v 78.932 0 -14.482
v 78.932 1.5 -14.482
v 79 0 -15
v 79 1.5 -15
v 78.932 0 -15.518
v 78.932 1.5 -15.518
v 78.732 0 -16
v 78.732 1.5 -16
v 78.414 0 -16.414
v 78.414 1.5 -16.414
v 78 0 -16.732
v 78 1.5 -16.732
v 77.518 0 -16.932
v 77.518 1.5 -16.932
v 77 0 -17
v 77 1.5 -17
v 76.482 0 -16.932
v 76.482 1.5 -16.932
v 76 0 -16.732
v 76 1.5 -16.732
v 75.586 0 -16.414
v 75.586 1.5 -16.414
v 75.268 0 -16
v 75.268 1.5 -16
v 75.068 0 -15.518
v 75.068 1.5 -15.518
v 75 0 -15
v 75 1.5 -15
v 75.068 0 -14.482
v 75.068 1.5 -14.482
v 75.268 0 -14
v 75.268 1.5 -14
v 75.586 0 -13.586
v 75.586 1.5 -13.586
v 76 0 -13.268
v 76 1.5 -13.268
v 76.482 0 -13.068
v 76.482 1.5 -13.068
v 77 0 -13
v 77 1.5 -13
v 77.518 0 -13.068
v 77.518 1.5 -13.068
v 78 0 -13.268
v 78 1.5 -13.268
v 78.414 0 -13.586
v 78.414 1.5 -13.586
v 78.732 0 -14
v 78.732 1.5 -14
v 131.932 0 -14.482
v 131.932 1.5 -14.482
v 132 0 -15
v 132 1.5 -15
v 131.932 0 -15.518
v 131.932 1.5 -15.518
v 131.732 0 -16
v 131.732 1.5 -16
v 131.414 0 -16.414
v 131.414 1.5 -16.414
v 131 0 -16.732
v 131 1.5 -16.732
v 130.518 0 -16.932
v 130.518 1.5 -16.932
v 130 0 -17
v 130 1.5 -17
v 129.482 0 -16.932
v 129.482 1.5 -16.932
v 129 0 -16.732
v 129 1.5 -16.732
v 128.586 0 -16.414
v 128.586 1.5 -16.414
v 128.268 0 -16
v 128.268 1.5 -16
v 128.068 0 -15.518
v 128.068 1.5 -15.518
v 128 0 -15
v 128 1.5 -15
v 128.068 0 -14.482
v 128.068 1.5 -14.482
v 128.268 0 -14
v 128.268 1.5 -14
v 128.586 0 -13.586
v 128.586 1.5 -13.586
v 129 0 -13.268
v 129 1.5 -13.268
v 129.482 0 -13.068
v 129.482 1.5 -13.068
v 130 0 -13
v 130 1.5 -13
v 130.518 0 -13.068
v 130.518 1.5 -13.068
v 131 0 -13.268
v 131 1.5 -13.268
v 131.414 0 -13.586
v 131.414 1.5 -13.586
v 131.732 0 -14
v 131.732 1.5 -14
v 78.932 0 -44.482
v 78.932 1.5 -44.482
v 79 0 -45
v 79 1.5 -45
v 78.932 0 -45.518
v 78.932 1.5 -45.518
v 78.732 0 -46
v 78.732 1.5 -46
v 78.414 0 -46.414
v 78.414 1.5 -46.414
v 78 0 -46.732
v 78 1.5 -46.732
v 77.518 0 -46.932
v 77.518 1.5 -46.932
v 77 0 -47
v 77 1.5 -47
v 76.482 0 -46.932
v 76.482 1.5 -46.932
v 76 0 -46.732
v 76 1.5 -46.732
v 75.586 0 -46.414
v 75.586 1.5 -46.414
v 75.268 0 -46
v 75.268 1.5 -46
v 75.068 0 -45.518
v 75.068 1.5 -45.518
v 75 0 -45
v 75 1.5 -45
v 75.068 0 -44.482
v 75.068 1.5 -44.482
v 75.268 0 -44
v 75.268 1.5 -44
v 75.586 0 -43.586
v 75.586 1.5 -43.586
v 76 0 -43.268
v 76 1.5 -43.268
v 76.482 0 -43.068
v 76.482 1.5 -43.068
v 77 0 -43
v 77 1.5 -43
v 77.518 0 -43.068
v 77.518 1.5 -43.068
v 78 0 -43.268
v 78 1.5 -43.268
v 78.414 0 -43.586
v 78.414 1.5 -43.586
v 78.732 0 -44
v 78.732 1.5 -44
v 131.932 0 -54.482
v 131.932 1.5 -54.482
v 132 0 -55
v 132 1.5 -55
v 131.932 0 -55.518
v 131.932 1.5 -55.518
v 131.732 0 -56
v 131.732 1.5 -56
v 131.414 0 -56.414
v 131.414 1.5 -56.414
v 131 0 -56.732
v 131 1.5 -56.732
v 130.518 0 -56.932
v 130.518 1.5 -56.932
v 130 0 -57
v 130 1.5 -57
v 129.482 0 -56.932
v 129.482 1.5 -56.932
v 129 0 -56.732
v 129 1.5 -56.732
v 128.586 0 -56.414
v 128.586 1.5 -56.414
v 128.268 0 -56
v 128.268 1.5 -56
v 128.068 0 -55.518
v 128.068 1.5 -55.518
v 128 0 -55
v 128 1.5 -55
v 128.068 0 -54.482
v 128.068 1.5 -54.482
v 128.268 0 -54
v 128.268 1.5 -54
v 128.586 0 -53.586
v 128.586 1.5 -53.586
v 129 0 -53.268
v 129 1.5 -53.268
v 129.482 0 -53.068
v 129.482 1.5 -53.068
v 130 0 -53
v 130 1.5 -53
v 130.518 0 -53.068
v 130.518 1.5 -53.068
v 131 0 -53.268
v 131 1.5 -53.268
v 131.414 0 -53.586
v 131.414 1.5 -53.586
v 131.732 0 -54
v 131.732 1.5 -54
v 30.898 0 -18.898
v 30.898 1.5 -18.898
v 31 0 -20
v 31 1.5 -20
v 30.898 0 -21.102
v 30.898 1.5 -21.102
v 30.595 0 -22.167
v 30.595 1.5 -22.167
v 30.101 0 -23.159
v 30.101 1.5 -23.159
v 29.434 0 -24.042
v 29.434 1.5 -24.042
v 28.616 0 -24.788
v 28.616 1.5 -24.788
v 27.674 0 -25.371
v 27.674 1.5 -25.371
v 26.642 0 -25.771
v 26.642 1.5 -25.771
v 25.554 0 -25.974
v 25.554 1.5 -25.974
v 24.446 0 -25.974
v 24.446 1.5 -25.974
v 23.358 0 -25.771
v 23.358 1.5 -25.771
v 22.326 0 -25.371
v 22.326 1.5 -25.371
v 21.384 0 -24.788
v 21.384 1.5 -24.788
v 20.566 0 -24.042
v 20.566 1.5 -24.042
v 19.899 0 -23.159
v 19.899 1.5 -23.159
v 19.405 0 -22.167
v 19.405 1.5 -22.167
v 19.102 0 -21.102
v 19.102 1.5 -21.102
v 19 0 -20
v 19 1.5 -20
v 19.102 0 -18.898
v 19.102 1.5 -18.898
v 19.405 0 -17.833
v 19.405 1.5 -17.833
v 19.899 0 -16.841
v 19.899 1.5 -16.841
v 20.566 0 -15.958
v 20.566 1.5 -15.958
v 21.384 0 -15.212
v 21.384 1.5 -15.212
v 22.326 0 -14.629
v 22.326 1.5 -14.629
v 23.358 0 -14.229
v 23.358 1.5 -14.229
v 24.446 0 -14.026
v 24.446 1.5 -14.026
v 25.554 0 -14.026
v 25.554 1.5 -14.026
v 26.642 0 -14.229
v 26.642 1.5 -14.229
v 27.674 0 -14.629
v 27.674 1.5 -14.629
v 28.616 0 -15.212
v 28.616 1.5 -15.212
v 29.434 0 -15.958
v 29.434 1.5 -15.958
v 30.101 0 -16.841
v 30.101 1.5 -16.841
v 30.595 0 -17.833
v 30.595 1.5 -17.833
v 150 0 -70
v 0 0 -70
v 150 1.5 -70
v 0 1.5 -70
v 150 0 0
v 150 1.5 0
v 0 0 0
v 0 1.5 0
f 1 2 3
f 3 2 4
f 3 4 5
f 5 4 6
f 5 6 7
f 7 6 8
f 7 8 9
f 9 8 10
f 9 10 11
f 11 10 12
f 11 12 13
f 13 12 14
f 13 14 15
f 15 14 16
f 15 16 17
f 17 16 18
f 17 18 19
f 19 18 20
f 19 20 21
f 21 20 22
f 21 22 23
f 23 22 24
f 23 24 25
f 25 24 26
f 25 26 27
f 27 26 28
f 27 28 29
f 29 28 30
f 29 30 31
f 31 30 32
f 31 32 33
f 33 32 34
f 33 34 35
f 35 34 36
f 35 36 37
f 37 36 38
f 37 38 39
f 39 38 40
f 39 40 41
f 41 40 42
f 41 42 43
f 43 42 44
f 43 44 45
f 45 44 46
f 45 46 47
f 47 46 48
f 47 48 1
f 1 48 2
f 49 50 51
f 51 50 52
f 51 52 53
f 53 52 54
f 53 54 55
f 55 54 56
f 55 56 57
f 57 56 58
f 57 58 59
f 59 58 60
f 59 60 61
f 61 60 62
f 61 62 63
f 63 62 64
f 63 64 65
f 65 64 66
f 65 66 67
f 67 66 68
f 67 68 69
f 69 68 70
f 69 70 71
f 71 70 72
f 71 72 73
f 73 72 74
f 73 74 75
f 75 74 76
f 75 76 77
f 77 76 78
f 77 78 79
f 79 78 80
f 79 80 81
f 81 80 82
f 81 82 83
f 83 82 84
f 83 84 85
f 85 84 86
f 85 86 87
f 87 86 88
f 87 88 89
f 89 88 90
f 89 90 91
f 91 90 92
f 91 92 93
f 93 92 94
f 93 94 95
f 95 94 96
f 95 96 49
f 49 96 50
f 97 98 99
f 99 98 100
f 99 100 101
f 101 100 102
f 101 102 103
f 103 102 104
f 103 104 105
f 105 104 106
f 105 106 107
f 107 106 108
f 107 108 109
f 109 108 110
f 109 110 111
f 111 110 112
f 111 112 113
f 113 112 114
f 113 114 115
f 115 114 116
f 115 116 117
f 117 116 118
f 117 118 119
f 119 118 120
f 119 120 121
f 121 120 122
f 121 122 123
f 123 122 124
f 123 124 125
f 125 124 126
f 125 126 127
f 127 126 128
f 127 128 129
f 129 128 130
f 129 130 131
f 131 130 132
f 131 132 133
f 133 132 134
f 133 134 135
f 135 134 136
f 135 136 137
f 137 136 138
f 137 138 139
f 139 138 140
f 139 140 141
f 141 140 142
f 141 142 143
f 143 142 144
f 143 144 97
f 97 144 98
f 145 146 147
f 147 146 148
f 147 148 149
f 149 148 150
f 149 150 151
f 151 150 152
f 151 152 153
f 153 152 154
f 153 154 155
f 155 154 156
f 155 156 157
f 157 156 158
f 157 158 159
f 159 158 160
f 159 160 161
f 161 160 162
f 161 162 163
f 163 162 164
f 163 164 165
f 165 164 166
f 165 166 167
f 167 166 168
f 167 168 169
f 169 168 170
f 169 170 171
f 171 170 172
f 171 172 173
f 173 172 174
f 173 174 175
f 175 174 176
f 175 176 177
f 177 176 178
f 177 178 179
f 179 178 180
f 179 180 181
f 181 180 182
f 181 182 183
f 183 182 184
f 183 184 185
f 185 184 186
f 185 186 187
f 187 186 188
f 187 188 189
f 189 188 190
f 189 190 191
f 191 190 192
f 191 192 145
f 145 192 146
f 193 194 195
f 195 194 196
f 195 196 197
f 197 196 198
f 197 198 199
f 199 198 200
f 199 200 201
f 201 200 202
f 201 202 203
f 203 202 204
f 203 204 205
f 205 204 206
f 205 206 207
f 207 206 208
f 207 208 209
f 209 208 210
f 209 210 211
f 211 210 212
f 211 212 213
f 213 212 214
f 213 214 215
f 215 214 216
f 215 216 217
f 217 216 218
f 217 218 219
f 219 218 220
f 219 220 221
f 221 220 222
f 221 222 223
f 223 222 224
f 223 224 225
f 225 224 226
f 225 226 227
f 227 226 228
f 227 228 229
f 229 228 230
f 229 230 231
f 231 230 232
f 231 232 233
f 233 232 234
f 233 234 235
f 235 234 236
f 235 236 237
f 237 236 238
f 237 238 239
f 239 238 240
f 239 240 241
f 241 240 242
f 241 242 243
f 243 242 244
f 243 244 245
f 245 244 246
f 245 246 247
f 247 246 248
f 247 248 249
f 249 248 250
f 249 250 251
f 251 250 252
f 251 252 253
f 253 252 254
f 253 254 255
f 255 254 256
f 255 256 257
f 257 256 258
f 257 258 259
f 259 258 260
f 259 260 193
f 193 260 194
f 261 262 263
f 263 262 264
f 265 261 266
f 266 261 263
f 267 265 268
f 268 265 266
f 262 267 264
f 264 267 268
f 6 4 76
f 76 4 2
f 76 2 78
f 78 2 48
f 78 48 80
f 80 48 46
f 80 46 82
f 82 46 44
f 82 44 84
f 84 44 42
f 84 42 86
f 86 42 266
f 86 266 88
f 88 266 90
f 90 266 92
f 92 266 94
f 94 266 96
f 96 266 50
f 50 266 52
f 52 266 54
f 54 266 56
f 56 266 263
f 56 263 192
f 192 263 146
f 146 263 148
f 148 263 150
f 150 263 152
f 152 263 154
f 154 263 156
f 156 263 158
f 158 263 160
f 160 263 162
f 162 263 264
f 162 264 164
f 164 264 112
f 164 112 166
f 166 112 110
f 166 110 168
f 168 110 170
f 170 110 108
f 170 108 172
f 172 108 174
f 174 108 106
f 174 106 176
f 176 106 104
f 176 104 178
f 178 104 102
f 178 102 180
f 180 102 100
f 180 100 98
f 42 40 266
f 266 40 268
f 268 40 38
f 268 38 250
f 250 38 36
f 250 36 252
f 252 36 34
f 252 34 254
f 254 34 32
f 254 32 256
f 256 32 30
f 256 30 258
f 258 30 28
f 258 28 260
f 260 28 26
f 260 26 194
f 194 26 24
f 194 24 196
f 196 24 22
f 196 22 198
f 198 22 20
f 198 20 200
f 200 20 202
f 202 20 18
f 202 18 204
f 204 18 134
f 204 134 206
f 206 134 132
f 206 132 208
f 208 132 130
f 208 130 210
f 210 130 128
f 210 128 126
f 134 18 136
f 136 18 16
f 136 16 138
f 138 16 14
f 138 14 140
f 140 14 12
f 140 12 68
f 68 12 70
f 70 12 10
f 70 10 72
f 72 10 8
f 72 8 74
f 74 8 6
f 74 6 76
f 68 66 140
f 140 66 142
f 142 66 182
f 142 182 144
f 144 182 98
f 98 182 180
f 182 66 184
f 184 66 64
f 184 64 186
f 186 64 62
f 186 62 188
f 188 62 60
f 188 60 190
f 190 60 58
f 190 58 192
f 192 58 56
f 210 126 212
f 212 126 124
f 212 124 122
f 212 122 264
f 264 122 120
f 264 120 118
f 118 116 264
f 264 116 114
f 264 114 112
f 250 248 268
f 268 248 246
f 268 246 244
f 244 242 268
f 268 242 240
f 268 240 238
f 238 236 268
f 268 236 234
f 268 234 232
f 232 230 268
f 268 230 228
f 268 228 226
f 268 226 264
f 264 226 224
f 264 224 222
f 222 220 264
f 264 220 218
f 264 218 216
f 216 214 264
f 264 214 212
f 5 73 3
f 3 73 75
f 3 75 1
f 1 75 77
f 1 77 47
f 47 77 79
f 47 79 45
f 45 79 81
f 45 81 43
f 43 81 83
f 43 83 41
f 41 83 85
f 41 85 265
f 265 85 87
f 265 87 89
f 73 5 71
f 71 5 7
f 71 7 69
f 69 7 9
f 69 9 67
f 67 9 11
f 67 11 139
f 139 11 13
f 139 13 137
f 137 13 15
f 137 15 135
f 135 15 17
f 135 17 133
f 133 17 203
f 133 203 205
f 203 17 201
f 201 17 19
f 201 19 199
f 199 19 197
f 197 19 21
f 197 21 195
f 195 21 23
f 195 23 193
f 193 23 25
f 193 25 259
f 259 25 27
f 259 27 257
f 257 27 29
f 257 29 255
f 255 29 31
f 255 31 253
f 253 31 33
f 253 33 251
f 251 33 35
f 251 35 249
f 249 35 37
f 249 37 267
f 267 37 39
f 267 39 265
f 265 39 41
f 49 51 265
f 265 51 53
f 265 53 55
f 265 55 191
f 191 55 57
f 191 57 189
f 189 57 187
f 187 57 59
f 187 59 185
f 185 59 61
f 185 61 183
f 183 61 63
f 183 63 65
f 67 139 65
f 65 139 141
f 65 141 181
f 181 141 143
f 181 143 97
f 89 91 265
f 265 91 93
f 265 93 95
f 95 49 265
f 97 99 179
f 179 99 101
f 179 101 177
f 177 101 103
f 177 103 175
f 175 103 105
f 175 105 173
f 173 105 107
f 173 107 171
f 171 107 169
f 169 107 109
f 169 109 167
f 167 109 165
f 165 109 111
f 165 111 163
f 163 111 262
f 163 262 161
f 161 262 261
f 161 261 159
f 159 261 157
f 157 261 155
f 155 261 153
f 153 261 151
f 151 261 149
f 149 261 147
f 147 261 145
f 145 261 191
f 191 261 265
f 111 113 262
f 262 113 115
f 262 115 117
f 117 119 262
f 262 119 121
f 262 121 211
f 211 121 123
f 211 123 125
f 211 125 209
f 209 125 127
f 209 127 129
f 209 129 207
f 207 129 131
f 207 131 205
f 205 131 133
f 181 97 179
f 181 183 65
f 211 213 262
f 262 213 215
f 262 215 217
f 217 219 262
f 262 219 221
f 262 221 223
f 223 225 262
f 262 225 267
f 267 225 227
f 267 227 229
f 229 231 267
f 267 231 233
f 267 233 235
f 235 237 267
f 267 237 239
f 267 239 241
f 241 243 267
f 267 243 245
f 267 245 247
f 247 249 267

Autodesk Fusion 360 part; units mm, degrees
sketch "Skizze1" plane through (0, 0, 0) normal (0, 1, 0) x (1, 0, 0)
  line L0 (0, 0) -> (150, 0)
  line L1 (150, 0) -> (150, 70)
  line L2 (150, 70) -> (0, 70)
  line L3 (0, 70) -> (0, 0)
  dimension "d1" = 150
  dimension "d2" = 70
extrude "Extrusion1" add sketch "Skizze1" along normal blind 1.5
sketch "Skizze2" plane through (0, 1.5, 0) normal (0, 1, 0) x (-1, 0, 0)
  line L0 (0, -70) -> (0, 0)
  line L1 (0, 0) -> (-150, 0)
  line L2 (-150, 0) -> (-150, -70)
  line L3 (-150, -70) -> (0, -70)
  line L4 (-77, -55) -> (-130, -55) construction
  line L5 (-130, -55) -> (-130, -15) construction
  line L6 (-130, -15) -> (-77, -15) construction
  line L7 (-77, -15) -> (-77, -55) construction
  line L8 (-81.1558, -15) -> (-81.1558, -45) construction
  circle A0 centre (-130, -55) radius 2
  circle A1 centre (-77, -45) radius 2
  circle A2 centre (-77, -15) radius 2
  circle A3 centre (-130, -15) radius 2
  circle A4 centre (-25, -20) radius 6
  dimension "d5" = 53
  dimension "d6" = 40
  dimension "d7" = 20
  dimension "d8" = 15
  dimension "d10" = 4
  dimension "d11" = 4
  dimension "d12" = 4
  dimension "d13" = 4
  dimension "d14" = 12
  dimension "d17" = 30
extrude "Extrusion2" cut sketch "Skizze2" against normal blind 5 contours A0 | A1 | A2 | A3 | A4
